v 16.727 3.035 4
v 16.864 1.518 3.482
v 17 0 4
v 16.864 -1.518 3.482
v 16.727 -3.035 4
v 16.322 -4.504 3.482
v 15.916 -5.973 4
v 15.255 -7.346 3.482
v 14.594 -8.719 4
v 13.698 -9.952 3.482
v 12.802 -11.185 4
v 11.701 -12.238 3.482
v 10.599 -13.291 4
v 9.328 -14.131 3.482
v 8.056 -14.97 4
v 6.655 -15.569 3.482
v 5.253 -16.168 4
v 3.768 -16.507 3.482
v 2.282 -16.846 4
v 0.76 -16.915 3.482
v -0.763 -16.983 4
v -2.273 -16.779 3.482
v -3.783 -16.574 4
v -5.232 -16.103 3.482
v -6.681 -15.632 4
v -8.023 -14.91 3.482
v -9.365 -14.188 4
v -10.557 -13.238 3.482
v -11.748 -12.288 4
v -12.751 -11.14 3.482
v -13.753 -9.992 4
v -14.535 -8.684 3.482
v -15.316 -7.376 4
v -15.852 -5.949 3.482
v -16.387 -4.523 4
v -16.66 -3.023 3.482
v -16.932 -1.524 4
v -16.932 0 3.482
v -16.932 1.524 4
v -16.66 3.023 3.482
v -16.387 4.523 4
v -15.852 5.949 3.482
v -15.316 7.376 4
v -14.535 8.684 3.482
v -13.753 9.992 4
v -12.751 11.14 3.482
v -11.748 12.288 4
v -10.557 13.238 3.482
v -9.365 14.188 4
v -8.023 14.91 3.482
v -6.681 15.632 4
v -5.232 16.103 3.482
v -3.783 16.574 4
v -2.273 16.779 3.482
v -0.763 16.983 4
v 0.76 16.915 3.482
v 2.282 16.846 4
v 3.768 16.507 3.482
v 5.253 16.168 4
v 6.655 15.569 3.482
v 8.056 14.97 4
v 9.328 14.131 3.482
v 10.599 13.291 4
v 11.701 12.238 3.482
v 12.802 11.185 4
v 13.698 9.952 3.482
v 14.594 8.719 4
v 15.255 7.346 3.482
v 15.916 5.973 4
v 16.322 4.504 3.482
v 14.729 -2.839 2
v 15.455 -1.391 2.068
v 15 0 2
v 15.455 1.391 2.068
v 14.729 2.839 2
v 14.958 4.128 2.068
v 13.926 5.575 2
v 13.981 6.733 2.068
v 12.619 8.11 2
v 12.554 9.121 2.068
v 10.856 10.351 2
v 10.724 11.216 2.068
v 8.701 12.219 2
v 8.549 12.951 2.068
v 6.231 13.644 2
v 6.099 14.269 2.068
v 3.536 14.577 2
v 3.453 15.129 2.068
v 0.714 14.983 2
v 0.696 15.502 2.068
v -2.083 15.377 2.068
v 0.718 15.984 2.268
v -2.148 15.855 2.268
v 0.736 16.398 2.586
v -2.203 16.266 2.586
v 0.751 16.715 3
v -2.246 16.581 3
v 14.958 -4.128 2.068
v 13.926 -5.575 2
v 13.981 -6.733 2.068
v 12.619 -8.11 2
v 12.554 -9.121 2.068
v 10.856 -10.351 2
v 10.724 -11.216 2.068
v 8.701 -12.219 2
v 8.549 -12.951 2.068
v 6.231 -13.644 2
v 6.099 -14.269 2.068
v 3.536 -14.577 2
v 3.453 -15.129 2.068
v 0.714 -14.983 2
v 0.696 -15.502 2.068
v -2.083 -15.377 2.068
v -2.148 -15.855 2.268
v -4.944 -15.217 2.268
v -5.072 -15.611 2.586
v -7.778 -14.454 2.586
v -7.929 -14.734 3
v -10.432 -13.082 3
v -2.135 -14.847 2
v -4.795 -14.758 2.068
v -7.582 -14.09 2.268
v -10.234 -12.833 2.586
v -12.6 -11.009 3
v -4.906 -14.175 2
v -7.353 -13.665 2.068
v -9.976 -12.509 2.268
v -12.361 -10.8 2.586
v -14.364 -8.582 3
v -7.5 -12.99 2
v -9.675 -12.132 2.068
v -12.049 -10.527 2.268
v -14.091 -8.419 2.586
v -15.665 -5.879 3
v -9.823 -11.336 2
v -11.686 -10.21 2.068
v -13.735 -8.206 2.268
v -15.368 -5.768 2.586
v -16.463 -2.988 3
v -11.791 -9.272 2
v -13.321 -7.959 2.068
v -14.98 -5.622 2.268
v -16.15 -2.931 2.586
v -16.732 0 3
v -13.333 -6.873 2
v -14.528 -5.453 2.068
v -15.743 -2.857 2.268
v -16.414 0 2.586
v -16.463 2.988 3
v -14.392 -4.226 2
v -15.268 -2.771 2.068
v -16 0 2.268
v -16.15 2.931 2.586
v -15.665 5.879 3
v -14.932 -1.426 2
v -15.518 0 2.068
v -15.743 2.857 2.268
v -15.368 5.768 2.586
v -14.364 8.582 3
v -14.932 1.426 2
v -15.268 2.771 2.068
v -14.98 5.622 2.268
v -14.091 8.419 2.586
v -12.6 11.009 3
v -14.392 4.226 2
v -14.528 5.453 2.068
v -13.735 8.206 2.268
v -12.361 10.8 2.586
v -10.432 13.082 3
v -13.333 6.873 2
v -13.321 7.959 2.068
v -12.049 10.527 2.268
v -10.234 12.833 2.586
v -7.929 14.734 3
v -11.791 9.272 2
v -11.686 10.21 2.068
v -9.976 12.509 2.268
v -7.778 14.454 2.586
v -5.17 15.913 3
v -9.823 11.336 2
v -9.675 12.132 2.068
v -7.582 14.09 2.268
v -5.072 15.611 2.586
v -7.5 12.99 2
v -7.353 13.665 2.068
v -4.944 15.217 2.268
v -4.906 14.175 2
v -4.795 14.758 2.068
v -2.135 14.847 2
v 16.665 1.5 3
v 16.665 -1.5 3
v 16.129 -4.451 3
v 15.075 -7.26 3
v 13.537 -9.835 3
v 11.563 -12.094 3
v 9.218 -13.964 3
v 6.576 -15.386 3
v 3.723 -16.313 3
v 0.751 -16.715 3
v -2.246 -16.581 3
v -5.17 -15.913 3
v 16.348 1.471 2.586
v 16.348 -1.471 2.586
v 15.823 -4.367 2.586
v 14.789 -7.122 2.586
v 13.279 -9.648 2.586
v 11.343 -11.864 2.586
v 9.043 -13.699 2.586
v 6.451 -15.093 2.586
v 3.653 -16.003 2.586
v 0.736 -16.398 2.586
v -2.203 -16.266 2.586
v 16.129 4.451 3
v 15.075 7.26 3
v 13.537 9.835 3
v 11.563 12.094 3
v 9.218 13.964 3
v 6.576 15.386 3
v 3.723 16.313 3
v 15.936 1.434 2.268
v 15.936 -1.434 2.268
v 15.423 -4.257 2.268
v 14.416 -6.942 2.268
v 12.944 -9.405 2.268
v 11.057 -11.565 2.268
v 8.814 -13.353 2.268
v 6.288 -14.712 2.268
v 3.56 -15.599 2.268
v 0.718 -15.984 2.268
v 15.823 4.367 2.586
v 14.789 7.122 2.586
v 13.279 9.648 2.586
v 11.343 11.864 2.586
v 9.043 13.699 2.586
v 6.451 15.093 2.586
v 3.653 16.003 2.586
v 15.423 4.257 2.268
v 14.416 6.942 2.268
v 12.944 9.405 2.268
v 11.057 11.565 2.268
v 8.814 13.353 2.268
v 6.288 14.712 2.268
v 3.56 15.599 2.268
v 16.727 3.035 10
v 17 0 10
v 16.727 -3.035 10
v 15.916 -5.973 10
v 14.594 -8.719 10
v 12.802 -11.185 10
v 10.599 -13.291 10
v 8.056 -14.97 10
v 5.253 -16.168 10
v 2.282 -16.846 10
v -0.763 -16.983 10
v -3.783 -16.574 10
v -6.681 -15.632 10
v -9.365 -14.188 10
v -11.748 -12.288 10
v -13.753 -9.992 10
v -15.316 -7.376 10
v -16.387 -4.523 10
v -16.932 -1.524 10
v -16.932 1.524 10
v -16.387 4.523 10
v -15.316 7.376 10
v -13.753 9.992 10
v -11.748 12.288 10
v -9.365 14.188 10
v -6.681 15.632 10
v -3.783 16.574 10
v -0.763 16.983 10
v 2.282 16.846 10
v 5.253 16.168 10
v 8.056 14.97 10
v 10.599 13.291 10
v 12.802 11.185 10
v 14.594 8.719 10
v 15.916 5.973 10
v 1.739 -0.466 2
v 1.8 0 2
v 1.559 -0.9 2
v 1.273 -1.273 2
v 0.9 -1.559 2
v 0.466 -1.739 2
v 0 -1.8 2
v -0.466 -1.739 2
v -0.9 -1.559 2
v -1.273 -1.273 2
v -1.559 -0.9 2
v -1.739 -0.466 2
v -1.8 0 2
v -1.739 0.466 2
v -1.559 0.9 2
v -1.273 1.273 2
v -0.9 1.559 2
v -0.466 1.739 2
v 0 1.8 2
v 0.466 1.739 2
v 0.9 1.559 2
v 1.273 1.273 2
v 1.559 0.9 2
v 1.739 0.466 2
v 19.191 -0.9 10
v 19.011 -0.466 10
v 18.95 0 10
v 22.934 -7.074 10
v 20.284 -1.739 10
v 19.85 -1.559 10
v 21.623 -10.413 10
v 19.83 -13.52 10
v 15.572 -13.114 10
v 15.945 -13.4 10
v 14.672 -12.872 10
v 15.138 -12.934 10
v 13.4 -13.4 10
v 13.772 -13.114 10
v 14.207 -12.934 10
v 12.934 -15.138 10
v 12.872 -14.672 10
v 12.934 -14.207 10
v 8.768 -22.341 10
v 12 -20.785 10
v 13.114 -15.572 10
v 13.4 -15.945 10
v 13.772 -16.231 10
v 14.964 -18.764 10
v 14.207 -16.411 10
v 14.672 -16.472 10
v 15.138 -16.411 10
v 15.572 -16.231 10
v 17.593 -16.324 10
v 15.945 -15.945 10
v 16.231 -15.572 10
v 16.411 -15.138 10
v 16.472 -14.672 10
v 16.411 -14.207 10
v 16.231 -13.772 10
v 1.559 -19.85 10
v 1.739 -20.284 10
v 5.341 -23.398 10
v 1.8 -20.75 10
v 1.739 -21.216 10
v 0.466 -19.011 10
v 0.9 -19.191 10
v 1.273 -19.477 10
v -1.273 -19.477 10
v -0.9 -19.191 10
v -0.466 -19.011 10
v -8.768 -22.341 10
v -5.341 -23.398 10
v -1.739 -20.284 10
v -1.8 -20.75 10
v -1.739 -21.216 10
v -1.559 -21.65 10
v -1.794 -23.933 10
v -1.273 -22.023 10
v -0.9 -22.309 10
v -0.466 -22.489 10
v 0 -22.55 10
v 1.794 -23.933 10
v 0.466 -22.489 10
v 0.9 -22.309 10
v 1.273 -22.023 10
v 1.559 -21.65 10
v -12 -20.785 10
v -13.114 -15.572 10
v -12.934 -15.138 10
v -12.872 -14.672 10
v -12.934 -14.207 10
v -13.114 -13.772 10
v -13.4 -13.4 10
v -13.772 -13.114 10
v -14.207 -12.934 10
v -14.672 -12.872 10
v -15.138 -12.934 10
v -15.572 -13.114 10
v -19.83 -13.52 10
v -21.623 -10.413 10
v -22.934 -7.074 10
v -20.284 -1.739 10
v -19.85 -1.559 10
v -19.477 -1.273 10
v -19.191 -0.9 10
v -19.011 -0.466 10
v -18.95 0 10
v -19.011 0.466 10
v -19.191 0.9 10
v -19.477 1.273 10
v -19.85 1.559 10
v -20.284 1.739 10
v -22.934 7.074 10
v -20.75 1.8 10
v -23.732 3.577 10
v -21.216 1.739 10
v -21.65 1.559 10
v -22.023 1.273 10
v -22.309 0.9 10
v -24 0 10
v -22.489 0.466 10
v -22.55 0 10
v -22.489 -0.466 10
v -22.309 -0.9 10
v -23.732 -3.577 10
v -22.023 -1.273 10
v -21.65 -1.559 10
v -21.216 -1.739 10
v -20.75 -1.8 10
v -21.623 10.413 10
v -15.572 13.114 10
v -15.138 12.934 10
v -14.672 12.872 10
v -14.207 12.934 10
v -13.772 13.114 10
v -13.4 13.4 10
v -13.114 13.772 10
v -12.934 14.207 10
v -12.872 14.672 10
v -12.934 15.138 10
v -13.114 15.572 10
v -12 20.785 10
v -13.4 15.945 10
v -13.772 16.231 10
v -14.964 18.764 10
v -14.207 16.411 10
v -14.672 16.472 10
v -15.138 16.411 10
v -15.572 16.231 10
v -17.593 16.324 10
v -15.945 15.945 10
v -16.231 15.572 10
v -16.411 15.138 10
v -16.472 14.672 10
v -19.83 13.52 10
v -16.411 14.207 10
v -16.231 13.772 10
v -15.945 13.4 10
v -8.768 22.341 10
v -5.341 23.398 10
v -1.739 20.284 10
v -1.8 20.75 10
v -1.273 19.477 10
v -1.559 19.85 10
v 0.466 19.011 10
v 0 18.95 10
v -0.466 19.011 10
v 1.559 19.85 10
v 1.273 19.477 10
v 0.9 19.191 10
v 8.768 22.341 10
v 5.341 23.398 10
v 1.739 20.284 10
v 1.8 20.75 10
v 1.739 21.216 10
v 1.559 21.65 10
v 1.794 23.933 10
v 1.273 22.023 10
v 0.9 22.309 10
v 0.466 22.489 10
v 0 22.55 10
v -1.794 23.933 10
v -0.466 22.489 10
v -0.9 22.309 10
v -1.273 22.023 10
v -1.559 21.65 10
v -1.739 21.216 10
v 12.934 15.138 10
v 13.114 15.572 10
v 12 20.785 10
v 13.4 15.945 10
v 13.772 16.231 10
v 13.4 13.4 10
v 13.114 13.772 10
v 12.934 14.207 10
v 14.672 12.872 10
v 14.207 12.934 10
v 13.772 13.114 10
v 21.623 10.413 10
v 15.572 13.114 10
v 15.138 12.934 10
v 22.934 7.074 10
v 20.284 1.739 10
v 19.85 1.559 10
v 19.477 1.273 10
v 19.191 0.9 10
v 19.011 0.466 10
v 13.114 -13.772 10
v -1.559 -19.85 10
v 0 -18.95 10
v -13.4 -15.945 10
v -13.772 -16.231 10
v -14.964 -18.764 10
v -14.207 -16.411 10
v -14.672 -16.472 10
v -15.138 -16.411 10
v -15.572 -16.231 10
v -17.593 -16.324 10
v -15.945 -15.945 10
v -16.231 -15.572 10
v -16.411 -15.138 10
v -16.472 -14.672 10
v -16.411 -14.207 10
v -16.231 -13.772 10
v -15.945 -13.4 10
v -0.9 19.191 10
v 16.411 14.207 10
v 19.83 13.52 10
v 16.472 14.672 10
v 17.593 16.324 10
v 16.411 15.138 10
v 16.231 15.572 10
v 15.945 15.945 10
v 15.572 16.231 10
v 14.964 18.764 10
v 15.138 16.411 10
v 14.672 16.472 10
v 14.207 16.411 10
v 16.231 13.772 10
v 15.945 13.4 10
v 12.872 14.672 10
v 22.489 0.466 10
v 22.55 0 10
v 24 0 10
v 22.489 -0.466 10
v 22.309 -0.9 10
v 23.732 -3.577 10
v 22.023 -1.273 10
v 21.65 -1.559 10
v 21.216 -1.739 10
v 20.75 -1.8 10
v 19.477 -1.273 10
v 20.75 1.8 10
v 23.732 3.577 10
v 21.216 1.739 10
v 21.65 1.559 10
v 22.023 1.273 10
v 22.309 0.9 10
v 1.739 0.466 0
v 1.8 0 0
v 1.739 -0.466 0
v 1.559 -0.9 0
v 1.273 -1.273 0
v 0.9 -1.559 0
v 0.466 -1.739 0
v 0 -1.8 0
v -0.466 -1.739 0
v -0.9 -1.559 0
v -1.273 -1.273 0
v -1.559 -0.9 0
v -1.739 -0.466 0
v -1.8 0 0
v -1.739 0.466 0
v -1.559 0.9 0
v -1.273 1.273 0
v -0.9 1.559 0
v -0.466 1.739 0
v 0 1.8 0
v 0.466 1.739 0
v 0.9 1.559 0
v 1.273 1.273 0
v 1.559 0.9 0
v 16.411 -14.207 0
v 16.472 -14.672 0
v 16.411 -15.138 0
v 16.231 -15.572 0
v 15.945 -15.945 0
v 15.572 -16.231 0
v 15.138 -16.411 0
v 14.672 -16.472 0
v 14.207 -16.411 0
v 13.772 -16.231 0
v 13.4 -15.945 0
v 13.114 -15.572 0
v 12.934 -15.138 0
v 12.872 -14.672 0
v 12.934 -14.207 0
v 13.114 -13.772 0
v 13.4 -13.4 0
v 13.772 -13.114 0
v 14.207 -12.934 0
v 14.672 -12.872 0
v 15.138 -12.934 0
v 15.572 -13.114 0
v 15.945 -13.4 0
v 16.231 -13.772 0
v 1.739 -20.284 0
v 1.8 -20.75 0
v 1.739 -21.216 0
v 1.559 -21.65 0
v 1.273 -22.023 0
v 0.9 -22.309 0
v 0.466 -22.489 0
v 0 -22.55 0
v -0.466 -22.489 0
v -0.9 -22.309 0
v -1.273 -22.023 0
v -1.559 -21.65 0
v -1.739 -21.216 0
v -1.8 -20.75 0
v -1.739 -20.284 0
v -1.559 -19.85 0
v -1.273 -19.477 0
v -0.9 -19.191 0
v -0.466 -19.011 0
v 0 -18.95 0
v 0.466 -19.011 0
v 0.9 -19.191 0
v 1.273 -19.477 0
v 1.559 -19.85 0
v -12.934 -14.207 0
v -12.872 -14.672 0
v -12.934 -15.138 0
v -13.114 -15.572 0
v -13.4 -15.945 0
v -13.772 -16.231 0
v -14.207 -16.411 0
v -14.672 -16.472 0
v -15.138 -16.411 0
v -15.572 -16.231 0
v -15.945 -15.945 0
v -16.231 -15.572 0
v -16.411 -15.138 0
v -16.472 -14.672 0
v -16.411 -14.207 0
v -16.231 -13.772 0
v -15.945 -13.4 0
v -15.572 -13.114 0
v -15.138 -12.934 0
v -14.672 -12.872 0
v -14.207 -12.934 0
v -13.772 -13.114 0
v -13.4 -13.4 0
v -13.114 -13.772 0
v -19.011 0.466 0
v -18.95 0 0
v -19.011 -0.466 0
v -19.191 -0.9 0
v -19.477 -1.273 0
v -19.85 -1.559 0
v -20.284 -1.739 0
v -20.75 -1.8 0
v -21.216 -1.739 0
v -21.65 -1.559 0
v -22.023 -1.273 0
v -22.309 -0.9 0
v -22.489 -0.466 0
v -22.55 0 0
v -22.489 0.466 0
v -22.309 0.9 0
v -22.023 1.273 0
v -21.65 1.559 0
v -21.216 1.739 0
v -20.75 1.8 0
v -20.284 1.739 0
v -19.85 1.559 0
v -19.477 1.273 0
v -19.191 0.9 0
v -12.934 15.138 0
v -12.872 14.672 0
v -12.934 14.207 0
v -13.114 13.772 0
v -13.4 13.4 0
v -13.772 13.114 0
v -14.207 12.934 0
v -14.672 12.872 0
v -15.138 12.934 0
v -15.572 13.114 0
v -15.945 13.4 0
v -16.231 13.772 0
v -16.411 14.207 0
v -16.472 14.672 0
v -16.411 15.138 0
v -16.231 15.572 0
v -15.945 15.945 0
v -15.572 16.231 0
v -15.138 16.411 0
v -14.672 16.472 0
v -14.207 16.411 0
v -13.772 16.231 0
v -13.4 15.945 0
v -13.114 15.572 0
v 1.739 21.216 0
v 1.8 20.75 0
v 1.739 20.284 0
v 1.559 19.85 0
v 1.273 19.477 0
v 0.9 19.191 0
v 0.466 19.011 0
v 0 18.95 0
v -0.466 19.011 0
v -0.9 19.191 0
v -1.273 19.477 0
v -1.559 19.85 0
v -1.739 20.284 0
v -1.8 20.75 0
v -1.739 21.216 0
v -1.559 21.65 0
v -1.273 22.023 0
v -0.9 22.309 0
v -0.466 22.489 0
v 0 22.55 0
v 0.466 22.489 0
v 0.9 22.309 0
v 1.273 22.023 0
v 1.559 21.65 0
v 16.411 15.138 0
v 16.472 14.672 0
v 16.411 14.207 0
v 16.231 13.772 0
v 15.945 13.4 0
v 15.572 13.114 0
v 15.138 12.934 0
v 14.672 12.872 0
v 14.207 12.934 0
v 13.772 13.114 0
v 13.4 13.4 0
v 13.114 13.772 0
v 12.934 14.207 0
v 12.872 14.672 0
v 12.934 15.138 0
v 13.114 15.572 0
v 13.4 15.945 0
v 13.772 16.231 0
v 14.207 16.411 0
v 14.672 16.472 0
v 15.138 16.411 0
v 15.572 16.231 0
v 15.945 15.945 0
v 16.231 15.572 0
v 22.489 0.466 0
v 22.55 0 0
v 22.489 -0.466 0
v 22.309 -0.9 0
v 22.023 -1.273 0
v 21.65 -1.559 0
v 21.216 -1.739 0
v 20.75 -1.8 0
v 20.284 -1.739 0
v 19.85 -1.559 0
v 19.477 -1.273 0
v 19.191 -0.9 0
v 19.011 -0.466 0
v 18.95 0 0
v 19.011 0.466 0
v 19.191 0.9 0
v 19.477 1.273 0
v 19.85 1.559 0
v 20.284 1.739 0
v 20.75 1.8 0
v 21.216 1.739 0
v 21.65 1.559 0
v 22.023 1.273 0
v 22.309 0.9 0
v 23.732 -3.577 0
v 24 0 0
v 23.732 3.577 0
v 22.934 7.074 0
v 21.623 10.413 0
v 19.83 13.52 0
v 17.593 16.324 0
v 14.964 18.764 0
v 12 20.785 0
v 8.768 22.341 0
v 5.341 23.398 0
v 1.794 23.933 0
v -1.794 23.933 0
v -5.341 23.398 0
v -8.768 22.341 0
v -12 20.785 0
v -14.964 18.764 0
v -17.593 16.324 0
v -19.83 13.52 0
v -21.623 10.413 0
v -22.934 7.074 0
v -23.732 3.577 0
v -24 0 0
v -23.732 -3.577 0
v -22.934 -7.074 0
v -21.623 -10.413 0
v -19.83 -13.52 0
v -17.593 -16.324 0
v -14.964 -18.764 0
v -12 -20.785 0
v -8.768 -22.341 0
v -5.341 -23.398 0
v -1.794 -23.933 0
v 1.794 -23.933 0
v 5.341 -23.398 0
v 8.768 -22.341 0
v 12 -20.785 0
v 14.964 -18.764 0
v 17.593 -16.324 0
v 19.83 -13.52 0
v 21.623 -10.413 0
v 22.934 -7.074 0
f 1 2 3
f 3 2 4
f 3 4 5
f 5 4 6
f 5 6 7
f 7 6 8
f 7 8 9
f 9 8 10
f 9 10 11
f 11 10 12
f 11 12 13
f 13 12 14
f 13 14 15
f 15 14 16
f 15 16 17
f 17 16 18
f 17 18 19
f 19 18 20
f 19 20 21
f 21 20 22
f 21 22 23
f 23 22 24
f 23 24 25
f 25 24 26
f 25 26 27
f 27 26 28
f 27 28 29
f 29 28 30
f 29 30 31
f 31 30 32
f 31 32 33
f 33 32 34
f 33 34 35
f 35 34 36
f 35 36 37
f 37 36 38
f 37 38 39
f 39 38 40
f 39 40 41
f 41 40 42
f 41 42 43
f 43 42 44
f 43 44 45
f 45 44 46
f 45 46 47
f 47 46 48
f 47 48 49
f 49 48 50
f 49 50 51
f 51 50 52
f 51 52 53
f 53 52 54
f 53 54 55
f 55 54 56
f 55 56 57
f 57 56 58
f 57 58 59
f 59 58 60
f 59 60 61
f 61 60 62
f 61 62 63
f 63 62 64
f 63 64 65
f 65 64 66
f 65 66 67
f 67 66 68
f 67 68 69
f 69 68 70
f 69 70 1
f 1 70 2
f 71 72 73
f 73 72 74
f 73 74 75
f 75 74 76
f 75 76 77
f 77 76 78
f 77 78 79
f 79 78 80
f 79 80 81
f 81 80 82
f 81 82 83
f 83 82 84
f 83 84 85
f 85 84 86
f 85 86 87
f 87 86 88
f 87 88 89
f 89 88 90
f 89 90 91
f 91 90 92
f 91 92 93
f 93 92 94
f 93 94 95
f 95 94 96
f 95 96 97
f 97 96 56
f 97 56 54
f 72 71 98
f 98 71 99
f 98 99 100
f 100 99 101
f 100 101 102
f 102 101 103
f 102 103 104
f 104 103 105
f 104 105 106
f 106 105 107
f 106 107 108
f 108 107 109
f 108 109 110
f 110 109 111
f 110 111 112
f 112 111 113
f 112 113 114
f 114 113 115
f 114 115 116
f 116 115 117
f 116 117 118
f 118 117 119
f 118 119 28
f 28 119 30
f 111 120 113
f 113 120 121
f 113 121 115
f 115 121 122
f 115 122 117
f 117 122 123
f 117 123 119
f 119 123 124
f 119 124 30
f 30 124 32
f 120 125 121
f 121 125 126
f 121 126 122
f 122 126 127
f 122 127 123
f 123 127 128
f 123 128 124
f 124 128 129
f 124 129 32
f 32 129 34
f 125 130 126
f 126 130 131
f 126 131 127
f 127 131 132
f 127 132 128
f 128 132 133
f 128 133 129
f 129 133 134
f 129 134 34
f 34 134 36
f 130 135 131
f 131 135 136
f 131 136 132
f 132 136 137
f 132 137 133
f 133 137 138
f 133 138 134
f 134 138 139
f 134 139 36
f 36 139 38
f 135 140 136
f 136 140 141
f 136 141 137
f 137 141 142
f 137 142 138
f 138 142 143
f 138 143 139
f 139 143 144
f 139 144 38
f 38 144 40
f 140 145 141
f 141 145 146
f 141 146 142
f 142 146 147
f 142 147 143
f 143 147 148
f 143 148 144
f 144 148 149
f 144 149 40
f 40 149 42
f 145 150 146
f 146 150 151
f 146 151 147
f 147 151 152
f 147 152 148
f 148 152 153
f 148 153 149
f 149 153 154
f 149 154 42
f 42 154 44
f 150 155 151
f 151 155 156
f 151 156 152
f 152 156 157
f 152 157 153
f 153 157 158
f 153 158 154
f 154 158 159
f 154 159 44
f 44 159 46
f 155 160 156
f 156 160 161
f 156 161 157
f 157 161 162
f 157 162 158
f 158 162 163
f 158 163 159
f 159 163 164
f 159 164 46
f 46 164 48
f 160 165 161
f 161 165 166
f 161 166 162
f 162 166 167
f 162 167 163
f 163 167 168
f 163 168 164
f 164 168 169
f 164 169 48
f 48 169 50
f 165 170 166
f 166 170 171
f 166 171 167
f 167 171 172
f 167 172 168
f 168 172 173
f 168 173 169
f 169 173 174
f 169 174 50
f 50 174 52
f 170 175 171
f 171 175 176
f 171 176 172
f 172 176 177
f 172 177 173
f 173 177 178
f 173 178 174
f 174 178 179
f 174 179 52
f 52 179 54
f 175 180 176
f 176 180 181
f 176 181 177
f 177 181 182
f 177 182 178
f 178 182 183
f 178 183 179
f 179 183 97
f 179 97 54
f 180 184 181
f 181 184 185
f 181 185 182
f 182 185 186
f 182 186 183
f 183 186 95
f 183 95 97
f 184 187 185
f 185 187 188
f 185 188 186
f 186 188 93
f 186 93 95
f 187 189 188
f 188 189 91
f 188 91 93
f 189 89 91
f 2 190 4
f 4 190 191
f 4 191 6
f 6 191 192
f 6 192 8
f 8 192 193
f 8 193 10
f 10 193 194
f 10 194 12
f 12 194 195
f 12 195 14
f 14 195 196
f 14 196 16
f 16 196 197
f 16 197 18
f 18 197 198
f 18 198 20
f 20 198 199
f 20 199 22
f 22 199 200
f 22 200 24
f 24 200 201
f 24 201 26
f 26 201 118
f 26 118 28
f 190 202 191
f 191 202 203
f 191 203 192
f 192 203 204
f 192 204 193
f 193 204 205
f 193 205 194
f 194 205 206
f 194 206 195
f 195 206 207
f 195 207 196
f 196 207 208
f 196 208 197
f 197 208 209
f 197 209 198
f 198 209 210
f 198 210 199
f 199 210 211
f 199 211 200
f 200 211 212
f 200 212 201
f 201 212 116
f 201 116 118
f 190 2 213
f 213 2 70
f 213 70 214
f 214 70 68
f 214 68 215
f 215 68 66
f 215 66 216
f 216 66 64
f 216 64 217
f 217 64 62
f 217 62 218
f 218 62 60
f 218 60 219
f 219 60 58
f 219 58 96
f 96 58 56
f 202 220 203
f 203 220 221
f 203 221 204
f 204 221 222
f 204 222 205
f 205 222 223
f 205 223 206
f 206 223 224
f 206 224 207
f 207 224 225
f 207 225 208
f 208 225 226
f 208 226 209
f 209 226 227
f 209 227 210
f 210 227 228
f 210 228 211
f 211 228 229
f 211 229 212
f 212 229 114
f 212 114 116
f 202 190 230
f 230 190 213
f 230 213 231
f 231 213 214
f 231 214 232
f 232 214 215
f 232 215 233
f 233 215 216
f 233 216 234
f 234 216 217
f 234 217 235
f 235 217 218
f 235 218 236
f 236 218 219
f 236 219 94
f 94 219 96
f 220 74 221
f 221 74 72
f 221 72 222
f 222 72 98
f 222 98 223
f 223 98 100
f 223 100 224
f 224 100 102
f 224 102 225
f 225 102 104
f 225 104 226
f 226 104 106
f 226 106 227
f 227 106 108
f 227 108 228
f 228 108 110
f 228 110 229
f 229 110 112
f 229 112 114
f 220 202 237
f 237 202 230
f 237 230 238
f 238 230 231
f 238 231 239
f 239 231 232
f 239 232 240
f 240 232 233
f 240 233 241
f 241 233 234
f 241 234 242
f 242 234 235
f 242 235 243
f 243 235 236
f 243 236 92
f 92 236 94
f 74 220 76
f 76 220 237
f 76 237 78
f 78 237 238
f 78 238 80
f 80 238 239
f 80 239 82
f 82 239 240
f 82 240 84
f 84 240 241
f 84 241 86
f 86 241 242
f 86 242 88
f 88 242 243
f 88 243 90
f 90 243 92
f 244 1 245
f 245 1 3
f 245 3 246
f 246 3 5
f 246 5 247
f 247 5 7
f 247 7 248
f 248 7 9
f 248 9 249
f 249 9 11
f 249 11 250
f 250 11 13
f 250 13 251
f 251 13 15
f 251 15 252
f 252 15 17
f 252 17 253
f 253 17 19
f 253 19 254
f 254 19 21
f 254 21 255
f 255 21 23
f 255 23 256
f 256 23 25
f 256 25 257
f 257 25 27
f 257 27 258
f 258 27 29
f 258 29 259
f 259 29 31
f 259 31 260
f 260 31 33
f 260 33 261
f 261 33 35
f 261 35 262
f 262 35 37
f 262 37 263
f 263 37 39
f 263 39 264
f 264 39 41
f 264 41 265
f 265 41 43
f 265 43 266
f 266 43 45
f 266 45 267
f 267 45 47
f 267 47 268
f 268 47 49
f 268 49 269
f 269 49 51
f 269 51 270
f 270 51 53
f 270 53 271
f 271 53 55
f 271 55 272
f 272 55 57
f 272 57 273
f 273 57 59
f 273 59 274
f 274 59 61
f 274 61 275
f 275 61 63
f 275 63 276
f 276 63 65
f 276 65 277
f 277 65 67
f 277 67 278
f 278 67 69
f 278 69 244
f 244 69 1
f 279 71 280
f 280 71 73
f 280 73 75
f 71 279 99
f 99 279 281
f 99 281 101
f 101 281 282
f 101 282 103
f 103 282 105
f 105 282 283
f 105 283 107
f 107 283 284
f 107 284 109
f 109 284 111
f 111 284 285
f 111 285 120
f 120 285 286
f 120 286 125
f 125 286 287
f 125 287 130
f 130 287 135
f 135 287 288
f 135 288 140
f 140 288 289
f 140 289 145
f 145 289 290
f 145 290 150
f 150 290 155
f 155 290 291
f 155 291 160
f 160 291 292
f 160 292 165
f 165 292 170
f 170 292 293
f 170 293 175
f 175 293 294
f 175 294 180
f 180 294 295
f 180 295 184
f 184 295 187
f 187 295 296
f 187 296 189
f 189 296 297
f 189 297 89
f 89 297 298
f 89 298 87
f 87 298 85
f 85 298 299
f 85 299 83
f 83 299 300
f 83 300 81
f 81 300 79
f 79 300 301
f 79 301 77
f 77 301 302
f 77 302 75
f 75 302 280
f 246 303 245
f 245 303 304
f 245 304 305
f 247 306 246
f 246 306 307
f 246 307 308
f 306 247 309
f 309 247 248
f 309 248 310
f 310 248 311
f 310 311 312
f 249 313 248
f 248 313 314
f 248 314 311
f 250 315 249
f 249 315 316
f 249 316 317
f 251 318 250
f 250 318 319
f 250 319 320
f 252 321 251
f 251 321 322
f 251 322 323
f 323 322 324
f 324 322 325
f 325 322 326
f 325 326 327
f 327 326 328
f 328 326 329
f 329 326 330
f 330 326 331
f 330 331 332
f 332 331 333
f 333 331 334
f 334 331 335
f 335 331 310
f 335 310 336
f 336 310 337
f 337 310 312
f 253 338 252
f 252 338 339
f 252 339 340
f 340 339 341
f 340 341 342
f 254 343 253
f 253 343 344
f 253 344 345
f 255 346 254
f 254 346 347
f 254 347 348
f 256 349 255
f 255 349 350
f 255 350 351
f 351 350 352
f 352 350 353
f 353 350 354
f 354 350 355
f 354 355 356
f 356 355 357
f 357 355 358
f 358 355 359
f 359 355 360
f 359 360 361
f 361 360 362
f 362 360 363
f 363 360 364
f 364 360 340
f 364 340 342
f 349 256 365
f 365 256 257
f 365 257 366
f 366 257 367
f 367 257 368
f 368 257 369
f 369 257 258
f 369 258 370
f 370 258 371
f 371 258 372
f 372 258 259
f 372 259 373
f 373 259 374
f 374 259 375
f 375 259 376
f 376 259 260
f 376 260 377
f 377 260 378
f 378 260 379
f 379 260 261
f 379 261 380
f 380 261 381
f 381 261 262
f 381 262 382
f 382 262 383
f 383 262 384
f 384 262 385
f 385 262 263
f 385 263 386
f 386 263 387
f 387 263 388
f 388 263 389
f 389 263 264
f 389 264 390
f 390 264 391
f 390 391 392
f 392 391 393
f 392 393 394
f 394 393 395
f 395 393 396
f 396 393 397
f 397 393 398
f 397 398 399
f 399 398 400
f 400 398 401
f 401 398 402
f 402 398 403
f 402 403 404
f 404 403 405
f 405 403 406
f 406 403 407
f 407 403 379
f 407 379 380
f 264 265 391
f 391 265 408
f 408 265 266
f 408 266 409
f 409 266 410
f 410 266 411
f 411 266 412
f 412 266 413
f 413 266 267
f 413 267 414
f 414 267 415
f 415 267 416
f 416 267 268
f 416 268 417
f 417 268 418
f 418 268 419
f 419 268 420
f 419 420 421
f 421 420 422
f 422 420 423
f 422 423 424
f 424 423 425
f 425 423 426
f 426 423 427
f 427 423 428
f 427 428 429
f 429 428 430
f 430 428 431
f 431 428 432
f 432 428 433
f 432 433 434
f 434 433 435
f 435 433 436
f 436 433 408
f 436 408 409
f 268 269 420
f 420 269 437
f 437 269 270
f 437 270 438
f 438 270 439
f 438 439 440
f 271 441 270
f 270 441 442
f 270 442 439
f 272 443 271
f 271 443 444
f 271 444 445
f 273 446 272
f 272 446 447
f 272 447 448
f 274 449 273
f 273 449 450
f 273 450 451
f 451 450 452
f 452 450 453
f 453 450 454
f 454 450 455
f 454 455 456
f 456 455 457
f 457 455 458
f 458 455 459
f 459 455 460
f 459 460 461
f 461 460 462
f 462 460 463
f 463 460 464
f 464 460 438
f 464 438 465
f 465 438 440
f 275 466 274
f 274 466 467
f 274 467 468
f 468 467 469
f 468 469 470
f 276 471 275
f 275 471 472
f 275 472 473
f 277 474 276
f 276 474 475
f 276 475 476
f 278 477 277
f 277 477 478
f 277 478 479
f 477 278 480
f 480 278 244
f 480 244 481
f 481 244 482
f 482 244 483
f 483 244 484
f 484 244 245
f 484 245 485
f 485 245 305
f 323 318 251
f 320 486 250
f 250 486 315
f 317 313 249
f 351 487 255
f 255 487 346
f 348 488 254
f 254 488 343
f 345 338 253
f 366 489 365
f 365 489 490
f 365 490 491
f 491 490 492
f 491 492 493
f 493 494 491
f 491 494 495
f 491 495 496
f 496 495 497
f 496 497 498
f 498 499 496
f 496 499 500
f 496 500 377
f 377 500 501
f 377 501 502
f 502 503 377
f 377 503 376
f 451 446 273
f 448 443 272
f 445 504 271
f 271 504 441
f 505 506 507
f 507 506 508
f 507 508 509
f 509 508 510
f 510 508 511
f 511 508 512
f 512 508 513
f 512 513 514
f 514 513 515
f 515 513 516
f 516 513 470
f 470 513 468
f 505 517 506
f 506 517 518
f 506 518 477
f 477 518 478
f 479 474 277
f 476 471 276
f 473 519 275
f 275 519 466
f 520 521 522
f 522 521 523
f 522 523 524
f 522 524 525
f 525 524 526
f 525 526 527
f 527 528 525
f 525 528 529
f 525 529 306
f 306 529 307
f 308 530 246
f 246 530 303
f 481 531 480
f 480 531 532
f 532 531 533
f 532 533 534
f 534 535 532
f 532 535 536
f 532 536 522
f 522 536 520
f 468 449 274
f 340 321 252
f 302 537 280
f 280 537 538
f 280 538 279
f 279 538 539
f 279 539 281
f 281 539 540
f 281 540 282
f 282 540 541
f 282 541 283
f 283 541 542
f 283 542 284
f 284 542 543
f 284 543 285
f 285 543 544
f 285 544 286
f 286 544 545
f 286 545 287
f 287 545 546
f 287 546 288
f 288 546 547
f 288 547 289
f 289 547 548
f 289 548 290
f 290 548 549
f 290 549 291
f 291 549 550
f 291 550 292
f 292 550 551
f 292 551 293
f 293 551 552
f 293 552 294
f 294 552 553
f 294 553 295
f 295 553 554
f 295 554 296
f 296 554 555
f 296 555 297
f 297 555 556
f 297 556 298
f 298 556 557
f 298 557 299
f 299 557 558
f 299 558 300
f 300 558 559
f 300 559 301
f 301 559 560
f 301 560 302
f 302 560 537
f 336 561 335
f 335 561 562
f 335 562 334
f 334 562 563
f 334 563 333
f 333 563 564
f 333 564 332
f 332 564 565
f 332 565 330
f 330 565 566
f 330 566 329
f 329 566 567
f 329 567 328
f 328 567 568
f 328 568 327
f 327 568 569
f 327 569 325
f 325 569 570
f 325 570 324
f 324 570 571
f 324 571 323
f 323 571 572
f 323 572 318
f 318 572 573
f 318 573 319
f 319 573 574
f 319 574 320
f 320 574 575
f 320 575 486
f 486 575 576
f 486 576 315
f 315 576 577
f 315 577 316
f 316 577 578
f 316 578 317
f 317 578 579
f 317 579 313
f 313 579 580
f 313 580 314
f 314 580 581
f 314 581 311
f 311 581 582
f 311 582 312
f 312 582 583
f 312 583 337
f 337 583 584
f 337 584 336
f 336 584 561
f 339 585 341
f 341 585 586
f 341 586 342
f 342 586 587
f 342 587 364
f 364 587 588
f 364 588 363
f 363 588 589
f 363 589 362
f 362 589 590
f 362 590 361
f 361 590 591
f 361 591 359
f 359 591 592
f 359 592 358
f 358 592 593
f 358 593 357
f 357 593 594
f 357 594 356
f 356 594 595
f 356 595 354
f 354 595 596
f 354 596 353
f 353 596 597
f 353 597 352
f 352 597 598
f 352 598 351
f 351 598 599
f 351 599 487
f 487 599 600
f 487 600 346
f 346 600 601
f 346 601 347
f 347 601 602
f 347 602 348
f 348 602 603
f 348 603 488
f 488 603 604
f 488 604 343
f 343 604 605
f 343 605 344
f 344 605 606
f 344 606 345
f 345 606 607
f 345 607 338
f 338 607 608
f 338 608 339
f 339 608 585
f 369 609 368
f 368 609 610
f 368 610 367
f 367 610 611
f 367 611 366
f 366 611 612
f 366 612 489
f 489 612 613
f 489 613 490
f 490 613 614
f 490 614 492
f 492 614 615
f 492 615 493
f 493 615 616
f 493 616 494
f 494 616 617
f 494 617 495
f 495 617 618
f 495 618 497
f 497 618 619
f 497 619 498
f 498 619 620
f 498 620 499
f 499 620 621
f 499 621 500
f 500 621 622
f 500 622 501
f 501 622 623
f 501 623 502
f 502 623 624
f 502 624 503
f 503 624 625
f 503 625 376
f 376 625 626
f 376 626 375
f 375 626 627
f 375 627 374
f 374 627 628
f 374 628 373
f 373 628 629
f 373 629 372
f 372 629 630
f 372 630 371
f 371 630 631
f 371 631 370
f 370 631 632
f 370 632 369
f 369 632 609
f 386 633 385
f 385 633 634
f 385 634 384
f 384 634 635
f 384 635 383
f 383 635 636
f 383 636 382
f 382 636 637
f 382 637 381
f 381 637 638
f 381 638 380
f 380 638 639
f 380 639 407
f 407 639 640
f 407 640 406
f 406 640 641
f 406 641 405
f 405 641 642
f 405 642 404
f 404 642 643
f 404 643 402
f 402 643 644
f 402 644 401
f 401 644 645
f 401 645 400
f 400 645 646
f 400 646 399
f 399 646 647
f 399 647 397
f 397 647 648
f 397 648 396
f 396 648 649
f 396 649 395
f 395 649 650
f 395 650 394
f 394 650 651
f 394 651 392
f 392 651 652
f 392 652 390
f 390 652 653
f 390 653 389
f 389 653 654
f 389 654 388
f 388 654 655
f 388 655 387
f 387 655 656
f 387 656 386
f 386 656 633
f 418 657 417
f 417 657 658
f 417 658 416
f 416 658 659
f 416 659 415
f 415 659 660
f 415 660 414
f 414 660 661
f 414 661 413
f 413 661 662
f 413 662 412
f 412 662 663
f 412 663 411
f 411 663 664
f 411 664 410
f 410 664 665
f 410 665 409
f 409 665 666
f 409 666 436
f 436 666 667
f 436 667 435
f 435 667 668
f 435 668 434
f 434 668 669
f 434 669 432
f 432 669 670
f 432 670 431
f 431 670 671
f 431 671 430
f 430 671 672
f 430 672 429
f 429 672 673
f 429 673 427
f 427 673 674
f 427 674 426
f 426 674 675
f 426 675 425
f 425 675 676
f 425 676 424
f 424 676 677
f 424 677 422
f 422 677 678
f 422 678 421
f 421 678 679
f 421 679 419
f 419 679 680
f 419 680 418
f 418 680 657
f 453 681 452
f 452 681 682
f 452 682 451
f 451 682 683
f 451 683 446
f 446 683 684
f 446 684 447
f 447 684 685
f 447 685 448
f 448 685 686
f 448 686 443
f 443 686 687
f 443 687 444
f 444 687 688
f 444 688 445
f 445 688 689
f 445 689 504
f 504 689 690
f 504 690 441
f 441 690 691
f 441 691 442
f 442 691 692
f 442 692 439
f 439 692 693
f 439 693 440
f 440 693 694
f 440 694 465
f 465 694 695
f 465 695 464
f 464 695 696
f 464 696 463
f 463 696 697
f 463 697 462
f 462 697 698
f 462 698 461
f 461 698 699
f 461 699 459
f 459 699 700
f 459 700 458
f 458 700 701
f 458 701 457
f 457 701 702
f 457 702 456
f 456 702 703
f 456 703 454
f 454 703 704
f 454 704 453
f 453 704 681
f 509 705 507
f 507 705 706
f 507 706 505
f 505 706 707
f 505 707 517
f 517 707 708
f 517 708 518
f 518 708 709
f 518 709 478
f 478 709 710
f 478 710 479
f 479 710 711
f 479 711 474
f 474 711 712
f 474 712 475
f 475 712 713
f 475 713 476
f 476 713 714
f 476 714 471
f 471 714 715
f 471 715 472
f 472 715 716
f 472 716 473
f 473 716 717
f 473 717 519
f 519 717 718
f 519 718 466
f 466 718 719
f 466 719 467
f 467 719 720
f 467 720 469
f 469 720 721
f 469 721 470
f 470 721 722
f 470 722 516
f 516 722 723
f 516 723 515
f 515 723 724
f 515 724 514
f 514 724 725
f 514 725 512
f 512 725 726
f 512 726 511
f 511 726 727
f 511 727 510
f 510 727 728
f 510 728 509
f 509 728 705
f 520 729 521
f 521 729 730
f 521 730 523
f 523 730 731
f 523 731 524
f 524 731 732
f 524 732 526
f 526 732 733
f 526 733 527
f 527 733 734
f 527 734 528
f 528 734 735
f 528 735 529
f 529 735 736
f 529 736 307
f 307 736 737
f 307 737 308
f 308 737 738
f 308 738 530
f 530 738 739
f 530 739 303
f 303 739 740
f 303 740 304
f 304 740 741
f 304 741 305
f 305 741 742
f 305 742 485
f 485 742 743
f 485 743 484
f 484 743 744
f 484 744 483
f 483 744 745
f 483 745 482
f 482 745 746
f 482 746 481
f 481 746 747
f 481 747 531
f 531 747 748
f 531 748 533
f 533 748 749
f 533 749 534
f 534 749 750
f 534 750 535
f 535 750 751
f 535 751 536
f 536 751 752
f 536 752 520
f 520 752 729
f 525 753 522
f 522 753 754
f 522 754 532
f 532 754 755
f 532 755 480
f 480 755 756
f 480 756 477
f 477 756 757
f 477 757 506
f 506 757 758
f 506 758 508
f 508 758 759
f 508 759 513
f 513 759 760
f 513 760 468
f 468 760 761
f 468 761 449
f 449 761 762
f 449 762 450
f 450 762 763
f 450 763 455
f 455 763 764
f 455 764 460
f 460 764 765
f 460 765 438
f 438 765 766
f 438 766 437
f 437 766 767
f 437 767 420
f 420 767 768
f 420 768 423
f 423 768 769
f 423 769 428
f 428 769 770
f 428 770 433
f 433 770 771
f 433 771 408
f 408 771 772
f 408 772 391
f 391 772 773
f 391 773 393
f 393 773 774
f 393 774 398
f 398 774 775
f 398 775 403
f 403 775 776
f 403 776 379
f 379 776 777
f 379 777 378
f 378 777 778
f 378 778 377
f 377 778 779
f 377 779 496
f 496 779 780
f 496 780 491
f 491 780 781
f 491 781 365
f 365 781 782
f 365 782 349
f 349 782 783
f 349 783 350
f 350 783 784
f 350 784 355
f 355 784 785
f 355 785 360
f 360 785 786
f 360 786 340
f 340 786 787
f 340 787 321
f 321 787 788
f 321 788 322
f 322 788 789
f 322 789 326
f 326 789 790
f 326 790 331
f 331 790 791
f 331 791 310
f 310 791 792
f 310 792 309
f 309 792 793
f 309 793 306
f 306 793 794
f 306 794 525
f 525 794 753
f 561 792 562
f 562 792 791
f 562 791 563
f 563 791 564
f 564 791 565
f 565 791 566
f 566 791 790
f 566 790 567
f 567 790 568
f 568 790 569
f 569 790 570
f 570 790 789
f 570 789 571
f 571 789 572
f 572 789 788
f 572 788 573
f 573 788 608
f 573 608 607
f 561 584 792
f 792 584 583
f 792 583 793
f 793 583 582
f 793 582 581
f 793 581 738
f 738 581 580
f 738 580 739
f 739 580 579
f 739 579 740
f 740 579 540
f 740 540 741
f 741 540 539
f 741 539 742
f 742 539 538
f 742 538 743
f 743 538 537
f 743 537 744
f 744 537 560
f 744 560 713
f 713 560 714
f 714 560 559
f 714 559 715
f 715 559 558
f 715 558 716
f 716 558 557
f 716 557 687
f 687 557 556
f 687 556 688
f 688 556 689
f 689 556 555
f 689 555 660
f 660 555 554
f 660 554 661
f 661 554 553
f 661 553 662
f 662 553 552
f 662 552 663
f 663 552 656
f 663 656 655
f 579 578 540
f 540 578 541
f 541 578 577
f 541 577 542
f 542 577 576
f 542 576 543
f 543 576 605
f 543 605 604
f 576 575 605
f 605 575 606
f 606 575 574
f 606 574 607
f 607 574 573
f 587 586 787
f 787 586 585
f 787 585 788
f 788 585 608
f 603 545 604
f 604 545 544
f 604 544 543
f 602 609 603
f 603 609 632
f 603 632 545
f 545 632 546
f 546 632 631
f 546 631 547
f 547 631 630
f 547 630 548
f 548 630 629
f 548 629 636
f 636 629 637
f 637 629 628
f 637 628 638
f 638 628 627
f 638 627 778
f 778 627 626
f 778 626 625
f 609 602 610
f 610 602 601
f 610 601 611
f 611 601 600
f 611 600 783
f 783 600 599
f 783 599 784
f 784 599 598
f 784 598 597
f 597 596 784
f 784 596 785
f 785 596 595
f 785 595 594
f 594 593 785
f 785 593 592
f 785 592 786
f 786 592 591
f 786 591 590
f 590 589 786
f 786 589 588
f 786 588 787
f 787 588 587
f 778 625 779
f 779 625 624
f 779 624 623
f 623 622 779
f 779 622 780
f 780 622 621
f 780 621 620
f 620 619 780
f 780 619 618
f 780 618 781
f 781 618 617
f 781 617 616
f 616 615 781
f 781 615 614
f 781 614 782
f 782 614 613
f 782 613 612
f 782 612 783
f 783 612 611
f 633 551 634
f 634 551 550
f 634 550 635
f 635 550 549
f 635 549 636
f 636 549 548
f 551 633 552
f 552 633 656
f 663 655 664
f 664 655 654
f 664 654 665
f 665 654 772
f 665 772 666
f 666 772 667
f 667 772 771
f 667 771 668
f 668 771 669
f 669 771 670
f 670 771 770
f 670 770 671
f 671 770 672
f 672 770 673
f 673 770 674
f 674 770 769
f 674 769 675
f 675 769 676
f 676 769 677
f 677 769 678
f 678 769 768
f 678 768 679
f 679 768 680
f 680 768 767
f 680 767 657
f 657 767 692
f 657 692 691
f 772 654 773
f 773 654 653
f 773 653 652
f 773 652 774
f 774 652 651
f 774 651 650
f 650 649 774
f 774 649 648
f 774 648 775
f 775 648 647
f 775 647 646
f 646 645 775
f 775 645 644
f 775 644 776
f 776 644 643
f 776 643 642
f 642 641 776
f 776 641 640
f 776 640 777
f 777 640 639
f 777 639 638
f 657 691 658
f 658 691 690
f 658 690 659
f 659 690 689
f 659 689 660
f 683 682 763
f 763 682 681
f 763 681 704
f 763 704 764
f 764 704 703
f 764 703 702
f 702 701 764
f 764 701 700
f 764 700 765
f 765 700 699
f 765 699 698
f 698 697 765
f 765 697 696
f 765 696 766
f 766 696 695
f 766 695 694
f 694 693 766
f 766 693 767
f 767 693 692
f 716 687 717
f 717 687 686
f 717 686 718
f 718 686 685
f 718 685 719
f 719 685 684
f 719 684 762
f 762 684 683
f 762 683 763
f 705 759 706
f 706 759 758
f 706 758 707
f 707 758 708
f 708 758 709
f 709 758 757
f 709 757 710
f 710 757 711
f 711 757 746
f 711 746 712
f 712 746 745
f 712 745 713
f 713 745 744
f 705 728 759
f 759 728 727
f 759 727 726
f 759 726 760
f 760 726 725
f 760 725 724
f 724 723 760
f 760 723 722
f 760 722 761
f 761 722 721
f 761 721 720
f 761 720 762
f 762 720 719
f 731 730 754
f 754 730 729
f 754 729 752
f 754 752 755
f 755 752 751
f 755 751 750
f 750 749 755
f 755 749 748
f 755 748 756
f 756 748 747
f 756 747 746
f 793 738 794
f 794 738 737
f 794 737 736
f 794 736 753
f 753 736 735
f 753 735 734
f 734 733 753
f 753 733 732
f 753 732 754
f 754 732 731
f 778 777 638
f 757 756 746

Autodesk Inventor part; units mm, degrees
ref_plane "YZ Plane" through (0, 0, 0) normal (1, 0, 0) x (0, 1, 0)
ref_plane "XZ Plane" through (0, 0, 0) normal (0, 1, 0) x (-1, 0, 0)
ref_plane "XY Plane" through (0, 0, 0) normal (0, 0, 1) x (1, 0, 0)
sketch "Sketch1" plane through (0, 0, 0) normal (0, 0, 1) x (1, 0, 0)
  circle A0 centre (0, 0) radius 1.8
  circle A1 centre (0, 0) radius 17
  circle A2 centre (0, 0) radius 8.5
  circle A3 centre (0, 0) radius 24
  circle A4 centre (20.75, 0) radius 1.8
  circle A5 centre (14.6725, 14.6725) radius 1.8
  circle A6 centre (0, 20.75) radius 1.8
  circle A7 centre (-14.6725, 14.6725) radius 1.8
  circle A8 centre (-20.75, 0) radius 1.8
  circle A9 centre (-14.6725, -14.6725) radius 1.8
  circle A10 centre (0, -20.75) radius 1.8
  circle A11 centre (14.6725, -14.6725) radius 1.8
  dimension "d0" = 3.6
  dimension "d1" = 34
  dimension "d2" = 17
  dimension "d3" = 48
  dimension "d4" = 3.6
  dimension "d5" = 20.75
  dimension "d8" = 360
extrude "Extrusion1" add sketch "Sketch1" along normal blind 2 contours A1 | A2 | A3
extrude "Extrusion2" add sketch "Sketch1" along normal blind 10 contours A3
fillet "Fillet1" radius 2 1 edges at (-17, 0, 2)
properties part number "MoldeA"
